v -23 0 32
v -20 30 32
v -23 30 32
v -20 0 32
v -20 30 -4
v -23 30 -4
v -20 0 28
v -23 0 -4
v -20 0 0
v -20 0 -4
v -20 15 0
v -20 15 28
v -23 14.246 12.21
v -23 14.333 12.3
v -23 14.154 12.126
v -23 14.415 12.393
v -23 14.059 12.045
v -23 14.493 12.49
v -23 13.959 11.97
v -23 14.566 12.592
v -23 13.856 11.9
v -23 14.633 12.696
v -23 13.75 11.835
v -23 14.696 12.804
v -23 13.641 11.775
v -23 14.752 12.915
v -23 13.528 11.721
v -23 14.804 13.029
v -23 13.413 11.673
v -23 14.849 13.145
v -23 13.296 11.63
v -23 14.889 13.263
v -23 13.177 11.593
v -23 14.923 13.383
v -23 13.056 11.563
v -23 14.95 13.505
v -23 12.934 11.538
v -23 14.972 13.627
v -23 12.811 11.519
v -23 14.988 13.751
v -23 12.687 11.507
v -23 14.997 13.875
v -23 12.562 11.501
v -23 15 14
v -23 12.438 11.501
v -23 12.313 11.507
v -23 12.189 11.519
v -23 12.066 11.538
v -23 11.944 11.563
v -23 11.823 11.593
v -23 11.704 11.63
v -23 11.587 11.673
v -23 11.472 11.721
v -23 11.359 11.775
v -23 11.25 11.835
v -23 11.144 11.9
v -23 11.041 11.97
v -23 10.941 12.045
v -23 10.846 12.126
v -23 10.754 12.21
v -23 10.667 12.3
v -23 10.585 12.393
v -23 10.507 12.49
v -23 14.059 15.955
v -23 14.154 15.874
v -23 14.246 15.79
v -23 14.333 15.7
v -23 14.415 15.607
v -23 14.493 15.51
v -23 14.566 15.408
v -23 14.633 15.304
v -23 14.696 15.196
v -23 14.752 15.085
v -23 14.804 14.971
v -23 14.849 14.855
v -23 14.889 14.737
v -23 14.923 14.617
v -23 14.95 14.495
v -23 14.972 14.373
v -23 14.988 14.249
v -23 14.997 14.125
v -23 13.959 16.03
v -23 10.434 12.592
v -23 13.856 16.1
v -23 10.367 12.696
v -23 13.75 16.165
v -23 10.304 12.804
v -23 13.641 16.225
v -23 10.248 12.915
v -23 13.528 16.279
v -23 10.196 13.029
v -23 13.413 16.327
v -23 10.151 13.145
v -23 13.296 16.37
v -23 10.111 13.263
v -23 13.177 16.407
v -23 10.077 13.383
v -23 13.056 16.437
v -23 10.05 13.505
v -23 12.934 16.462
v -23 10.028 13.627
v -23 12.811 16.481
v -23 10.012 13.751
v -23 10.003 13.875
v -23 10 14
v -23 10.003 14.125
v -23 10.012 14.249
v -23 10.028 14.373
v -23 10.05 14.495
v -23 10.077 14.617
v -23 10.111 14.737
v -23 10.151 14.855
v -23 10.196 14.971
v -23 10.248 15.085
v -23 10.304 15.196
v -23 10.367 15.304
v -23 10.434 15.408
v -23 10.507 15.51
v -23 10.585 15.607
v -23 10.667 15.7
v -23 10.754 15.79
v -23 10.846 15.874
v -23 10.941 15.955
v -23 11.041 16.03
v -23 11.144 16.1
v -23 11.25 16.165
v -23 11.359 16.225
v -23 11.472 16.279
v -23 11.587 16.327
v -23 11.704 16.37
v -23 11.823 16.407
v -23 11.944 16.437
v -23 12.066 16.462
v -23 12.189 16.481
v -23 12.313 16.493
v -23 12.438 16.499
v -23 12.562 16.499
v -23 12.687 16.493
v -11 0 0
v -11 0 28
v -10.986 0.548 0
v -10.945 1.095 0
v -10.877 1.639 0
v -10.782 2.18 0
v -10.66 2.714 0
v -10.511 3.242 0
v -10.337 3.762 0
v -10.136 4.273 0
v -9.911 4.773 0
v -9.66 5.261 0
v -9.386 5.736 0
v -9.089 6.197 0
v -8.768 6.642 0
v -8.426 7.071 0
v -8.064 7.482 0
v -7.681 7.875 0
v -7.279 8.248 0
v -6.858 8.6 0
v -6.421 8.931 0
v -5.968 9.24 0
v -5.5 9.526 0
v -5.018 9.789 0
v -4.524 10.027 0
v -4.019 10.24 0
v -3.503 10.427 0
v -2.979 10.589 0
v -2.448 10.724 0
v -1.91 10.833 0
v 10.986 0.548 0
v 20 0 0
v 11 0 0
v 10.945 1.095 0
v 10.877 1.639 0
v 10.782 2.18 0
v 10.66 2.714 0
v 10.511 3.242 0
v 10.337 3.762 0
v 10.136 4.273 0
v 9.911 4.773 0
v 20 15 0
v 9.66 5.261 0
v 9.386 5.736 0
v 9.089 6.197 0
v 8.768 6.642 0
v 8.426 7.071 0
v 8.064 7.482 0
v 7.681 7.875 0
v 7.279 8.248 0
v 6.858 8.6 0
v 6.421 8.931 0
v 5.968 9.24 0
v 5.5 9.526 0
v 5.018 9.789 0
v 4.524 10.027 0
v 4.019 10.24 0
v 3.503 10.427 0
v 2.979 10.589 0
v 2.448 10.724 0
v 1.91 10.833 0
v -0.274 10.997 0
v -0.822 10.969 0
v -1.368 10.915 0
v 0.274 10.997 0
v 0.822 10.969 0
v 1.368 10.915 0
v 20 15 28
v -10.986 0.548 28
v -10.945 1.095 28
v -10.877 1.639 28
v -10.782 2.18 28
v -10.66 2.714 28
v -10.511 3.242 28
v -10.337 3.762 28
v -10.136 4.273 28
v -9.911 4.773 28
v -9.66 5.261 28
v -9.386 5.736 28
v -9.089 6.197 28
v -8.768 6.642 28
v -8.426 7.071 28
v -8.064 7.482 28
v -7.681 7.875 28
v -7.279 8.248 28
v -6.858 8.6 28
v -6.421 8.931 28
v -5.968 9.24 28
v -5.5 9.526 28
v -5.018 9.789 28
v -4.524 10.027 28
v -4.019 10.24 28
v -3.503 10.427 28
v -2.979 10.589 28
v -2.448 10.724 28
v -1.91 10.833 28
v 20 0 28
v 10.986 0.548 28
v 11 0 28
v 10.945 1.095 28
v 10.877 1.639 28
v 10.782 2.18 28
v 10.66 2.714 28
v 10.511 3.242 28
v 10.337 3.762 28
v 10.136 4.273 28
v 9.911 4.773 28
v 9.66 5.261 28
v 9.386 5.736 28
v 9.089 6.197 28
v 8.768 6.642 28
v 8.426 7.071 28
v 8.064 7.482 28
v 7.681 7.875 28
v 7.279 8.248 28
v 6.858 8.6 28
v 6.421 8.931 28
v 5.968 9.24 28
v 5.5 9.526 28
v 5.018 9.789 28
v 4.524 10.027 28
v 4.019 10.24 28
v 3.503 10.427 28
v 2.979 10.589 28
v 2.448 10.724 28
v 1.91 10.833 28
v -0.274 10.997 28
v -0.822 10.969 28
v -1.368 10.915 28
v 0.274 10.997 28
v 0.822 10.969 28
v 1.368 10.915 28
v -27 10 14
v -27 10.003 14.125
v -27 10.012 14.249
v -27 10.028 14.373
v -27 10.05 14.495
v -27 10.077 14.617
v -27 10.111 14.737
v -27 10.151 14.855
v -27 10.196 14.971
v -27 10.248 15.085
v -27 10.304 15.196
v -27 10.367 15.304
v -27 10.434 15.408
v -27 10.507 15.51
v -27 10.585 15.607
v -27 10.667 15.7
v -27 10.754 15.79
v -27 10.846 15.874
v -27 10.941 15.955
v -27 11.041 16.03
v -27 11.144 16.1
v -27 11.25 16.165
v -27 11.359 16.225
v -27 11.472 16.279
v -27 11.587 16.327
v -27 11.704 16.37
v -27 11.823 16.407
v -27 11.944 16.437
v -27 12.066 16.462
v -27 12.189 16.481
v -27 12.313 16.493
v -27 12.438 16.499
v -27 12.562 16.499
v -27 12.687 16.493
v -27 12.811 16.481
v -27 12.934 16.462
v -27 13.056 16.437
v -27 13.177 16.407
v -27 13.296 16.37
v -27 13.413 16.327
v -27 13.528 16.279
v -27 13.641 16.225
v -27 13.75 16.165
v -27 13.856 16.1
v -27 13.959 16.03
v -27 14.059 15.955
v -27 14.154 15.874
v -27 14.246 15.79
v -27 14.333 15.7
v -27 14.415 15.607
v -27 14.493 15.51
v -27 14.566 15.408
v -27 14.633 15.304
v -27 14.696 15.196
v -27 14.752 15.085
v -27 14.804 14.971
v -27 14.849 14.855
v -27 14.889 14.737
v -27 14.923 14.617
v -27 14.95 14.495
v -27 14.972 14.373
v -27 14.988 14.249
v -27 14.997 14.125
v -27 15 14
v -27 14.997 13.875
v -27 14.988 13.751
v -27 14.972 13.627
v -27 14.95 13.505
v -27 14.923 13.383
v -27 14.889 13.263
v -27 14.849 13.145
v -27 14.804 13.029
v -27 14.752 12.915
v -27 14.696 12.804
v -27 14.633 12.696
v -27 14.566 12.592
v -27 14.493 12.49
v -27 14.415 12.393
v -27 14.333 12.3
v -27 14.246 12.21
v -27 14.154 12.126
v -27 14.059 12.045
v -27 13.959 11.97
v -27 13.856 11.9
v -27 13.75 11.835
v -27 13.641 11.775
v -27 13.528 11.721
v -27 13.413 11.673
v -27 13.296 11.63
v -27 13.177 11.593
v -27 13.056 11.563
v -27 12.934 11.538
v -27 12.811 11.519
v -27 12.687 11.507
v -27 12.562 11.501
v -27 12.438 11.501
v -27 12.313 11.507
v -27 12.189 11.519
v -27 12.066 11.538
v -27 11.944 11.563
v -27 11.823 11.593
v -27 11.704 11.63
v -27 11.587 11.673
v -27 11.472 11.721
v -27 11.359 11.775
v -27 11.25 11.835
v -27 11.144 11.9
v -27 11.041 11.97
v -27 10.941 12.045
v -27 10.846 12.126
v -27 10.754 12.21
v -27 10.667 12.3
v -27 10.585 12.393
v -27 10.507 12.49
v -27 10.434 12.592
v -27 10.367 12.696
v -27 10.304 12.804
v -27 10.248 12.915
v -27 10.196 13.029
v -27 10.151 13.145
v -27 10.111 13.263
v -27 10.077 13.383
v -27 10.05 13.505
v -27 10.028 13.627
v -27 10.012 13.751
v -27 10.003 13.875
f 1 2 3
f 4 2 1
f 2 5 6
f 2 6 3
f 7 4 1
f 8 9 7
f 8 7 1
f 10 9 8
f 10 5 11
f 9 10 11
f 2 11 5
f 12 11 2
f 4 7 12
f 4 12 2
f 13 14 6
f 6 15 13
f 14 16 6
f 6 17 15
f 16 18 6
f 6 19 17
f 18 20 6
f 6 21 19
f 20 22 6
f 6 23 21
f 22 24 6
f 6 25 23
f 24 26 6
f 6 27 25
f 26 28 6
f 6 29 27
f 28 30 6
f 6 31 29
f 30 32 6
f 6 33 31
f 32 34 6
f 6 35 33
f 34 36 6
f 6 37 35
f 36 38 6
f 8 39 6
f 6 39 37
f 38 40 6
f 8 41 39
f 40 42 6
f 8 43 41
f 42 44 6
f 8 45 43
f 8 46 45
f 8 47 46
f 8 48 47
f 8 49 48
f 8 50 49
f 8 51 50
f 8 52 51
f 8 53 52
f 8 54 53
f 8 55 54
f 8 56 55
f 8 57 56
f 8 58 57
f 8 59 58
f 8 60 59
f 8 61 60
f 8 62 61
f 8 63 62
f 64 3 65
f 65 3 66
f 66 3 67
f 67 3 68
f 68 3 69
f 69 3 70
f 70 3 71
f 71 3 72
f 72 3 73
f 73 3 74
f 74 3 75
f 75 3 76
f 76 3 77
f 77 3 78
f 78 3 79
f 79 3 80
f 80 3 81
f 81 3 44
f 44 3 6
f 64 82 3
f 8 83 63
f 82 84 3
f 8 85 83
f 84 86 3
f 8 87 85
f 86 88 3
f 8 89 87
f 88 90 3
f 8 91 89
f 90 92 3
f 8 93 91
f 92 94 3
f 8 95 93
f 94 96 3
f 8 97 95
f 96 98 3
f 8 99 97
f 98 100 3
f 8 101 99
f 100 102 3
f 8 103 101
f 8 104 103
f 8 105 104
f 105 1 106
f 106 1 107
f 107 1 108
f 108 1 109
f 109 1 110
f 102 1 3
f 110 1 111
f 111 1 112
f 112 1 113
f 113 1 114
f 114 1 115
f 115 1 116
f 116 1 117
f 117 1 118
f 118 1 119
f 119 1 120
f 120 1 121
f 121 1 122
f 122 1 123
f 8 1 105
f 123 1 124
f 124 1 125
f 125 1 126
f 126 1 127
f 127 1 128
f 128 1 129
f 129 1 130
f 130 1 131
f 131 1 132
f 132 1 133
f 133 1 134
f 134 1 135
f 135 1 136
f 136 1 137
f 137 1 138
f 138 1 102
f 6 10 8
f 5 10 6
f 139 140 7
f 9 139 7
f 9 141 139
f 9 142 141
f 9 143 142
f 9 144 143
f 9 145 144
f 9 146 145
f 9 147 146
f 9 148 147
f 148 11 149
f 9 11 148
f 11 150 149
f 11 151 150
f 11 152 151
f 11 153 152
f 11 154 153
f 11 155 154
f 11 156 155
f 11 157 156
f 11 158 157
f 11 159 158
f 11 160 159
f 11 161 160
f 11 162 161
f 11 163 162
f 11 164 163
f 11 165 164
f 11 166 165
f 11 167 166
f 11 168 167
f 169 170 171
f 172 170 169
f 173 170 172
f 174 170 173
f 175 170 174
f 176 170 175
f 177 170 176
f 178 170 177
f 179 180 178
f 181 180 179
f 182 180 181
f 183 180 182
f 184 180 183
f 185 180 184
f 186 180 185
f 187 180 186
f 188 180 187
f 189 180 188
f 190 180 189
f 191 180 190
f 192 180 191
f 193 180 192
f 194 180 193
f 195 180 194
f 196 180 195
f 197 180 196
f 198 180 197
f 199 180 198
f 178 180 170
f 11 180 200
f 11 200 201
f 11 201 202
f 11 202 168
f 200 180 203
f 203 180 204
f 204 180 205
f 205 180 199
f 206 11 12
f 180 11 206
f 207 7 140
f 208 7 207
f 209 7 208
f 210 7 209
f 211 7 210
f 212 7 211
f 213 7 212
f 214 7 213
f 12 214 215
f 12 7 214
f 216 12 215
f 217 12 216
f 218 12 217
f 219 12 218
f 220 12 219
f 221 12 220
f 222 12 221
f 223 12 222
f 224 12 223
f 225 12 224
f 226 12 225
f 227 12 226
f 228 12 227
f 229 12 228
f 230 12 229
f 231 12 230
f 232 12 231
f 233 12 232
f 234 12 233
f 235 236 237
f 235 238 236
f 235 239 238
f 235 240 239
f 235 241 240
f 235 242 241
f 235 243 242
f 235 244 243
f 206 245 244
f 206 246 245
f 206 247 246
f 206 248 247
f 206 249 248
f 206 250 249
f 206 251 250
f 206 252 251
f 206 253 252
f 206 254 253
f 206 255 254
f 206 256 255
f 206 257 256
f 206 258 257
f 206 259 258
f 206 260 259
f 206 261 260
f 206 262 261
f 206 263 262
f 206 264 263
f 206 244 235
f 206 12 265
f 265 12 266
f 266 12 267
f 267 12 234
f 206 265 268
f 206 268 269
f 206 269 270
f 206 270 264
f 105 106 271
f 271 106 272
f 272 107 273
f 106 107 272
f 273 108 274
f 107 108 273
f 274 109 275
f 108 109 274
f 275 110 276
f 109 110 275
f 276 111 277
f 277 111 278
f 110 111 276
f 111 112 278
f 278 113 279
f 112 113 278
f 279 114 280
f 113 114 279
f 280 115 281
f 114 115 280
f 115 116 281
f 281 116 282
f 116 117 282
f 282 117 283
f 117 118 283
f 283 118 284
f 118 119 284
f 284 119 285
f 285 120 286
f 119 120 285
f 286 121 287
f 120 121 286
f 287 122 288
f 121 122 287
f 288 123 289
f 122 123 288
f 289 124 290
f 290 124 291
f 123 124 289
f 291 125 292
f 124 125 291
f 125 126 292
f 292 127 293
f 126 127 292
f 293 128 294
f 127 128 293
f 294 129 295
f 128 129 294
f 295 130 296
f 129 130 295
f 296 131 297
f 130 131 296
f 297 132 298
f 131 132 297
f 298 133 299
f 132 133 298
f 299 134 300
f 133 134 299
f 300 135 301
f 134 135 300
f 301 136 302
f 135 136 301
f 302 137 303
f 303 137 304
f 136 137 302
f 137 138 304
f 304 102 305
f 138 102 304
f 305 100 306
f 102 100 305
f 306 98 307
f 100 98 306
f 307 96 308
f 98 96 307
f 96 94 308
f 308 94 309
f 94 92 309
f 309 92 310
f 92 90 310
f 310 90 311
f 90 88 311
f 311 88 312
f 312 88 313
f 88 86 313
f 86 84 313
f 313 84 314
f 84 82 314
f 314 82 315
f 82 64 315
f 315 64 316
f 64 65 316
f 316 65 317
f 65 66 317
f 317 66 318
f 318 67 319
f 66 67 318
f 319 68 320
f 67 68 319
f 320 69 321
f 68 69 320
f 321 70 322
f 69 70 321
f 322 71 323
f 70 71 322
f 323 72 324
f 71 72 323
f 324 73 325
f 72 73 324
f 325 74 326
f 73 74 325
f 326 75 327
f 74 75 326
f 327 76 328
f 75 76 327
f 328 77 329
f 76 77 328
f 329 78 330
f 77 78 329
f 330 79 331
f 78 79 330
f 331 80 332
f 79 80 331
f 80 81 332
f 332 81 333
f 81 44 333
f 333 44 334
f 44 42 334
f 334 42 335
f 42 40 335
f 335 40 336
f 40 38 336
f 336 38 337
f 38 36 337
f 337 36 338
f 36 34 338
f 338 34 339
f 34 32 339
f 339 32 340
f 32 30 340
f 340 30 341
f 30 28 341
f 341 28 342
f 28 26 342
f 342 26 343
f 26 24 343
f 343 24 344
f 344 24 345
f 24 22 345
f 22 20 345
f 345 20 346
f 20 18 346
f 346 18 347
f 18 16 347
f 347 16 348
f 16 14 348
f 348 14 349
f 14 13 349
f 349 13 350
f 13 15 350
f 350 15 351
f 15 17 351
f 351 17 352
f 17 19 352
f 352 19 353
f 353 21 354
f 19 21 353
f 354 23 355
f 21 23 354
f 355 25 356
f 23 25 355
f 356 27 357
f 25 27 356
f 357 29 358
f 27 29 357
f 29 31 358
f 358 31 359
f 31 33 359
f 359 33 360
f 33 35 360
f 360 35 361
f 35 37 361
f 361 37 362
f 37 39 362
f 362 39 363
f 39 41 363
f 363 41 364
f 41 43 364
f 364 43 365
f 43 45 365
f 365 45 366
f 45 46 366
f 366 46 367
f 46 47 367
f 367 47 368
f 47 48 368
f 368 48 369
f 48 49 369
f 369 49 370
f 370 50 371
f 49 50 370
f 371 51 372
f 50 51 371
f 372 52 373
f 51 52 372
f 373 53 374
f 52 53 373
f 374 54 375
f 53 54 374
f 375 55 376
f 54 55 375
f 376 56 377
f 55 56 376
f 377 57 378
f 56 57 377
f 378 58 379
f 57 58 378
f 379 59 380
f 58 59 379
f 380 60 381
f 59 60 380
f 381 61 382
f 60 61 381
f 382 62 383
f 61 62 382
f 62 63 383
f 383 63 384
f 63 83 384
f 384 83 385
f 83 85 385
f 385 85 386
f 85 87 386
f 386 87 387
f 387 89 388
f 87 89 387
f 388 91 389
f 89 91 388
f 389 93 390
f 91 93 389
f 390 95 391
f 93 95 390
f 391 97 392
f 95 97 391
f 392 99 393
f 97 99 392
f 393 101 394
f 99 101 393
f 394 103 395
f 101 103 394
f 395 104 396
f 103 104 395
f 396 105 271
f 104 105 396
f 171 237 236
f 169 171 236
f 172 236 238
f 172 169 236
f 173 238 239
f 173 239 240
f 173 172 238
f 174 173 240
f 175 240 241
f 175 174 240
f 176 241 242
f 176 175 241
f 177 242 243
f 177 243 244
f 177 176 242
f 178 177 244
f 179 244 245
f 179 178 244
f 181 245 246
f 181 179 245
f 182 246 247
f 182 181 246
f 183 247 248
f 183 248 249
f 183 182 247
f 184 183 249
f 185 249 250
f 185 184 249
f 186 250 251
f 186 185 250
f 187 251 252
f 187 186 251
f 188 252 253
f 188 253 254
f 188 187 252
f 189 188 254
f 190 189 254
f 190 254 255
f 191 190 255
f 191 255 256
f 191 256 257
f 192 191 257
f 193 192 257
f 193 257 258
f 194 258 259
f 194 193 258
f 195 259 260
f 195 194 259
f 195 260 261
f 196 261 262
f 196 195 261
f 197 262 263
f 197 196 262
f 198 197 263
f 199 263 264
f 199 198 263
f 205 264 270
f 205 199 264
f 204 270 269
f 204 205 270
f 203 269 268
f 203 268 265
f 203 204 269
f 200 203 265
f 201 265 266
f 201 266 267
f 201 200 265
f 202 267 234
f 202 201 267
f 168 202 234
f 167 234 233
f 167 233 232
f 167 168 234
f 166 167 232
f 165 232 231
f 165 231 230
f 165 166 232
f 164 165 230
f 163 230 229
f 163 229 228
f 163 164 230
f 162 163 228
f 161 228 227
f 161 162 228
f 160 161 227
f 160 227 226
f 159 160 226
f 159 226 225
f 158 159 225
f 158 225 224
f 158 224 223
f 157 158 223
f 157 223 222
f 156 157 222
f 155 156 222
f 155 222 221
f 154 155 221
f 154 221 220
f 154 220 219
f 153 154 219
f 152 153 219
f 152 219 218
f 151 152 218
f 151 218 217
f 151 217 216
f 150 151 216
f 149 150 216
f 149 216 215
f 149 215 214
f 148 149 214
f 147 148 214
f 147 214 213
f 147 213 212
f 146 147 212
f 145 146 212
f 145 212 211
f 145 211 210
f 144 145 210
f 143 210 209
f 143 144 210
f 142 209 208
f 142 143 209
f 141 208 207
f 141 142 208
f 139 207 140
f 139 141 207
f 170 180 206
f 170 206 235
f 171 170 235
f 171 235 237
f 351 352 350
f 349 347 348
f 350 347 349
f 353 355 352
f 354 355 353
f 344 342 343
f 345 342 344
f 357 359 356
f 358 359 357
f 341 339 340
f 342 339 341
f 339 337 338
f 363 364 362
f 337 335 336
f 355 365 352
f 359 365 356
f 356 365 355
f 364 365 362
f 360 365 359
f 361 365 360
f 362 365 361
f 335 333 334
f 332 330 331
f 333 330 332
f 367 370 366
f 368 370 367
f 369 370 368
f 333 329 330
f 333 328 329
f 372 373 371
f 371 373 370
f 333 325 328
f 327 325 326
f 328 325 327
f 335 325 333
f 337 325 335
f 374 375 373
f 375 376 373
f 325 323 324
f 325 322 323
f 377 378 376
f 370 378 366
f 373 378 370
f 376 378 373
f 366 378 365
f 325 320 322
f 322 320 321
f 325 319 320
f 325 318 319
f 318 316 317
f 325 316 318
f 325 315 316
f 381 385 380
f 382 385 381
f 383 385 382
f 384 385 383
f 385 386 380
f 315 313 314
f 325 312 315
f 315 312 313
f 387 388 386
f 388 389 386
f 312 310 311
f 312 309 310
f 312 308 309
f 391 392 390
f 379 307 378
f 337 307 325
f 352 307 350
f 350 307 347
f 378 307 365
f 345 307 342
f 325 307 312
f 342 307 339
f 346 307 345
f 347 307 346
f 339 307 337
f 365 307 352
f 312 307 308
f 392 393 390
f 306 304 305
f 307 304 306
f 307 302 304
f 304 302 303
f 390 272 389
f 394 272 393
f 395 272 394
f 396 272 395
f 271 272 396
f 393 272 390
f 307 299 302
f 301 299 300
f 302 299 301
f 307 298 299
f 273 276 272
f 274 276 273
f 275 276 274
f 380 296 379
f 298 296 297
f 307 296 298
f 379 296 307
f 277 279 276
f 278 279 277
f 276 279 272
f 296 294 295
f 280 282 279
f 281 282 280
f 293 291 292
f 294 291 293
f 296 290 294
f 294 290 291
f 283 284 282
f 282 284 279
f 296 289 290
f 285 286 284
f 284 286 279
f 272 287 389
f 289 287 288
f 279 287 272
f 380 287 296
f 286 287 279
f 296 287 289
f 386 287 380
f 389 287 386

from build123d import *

# Parameters (mm, degrees)
PAD_DEPTH    = 28
SKETCH001_W  = 30
SKETCH001_H  = 36
PAD001_DEPTH = 3
SKETCH002_R  = 2.5
PAD002_DEPTH = 4


with BuildPart() as part:
    # Sketch → Pad (new body)
    with BuildSketch(Plane.XY):
        with BuildLine():
            Line((-20, 15), (20, 15))
            Line((20, 15), (20, 0))
            Line((20, 0), (11, -2.2e-05))
            ThreePointArc((11, -2.2e-05), (1.1e-05, 11), (-11, 0))
            Line((-11, 0), (-20, 0))
            Line((-20, 0), (-20, 15))
        make_face()
    extrude(amount=PAD_DEPTH)

    # Sketch001 (on Face6 of Pad) → Pad001 (join)
    with BuildSketch(Plane(origin=(-20, 0, 0), x_dir=(0, -1, 0), z_dir=(-1, 0, 0))):
        with Locations((-15, 14)):
            Rectangle(SKETCH001_W, SKETCH001_H)
    extrude(amount=PAD001_DEPTH)

    # Sketch002 (on Face5 of Pad001) → Pad002 (join)
    with BuildSketch(Plane(origin=(-23, 0, 0), x_dir=(0, -1, 0), z_dir=(-1, 0, 0))):
        with Locations((-12.5, 14)):
            Circle(SKETCH002_R)
    extrude(amount=PAD002_DEPTH)


solid = part.part
